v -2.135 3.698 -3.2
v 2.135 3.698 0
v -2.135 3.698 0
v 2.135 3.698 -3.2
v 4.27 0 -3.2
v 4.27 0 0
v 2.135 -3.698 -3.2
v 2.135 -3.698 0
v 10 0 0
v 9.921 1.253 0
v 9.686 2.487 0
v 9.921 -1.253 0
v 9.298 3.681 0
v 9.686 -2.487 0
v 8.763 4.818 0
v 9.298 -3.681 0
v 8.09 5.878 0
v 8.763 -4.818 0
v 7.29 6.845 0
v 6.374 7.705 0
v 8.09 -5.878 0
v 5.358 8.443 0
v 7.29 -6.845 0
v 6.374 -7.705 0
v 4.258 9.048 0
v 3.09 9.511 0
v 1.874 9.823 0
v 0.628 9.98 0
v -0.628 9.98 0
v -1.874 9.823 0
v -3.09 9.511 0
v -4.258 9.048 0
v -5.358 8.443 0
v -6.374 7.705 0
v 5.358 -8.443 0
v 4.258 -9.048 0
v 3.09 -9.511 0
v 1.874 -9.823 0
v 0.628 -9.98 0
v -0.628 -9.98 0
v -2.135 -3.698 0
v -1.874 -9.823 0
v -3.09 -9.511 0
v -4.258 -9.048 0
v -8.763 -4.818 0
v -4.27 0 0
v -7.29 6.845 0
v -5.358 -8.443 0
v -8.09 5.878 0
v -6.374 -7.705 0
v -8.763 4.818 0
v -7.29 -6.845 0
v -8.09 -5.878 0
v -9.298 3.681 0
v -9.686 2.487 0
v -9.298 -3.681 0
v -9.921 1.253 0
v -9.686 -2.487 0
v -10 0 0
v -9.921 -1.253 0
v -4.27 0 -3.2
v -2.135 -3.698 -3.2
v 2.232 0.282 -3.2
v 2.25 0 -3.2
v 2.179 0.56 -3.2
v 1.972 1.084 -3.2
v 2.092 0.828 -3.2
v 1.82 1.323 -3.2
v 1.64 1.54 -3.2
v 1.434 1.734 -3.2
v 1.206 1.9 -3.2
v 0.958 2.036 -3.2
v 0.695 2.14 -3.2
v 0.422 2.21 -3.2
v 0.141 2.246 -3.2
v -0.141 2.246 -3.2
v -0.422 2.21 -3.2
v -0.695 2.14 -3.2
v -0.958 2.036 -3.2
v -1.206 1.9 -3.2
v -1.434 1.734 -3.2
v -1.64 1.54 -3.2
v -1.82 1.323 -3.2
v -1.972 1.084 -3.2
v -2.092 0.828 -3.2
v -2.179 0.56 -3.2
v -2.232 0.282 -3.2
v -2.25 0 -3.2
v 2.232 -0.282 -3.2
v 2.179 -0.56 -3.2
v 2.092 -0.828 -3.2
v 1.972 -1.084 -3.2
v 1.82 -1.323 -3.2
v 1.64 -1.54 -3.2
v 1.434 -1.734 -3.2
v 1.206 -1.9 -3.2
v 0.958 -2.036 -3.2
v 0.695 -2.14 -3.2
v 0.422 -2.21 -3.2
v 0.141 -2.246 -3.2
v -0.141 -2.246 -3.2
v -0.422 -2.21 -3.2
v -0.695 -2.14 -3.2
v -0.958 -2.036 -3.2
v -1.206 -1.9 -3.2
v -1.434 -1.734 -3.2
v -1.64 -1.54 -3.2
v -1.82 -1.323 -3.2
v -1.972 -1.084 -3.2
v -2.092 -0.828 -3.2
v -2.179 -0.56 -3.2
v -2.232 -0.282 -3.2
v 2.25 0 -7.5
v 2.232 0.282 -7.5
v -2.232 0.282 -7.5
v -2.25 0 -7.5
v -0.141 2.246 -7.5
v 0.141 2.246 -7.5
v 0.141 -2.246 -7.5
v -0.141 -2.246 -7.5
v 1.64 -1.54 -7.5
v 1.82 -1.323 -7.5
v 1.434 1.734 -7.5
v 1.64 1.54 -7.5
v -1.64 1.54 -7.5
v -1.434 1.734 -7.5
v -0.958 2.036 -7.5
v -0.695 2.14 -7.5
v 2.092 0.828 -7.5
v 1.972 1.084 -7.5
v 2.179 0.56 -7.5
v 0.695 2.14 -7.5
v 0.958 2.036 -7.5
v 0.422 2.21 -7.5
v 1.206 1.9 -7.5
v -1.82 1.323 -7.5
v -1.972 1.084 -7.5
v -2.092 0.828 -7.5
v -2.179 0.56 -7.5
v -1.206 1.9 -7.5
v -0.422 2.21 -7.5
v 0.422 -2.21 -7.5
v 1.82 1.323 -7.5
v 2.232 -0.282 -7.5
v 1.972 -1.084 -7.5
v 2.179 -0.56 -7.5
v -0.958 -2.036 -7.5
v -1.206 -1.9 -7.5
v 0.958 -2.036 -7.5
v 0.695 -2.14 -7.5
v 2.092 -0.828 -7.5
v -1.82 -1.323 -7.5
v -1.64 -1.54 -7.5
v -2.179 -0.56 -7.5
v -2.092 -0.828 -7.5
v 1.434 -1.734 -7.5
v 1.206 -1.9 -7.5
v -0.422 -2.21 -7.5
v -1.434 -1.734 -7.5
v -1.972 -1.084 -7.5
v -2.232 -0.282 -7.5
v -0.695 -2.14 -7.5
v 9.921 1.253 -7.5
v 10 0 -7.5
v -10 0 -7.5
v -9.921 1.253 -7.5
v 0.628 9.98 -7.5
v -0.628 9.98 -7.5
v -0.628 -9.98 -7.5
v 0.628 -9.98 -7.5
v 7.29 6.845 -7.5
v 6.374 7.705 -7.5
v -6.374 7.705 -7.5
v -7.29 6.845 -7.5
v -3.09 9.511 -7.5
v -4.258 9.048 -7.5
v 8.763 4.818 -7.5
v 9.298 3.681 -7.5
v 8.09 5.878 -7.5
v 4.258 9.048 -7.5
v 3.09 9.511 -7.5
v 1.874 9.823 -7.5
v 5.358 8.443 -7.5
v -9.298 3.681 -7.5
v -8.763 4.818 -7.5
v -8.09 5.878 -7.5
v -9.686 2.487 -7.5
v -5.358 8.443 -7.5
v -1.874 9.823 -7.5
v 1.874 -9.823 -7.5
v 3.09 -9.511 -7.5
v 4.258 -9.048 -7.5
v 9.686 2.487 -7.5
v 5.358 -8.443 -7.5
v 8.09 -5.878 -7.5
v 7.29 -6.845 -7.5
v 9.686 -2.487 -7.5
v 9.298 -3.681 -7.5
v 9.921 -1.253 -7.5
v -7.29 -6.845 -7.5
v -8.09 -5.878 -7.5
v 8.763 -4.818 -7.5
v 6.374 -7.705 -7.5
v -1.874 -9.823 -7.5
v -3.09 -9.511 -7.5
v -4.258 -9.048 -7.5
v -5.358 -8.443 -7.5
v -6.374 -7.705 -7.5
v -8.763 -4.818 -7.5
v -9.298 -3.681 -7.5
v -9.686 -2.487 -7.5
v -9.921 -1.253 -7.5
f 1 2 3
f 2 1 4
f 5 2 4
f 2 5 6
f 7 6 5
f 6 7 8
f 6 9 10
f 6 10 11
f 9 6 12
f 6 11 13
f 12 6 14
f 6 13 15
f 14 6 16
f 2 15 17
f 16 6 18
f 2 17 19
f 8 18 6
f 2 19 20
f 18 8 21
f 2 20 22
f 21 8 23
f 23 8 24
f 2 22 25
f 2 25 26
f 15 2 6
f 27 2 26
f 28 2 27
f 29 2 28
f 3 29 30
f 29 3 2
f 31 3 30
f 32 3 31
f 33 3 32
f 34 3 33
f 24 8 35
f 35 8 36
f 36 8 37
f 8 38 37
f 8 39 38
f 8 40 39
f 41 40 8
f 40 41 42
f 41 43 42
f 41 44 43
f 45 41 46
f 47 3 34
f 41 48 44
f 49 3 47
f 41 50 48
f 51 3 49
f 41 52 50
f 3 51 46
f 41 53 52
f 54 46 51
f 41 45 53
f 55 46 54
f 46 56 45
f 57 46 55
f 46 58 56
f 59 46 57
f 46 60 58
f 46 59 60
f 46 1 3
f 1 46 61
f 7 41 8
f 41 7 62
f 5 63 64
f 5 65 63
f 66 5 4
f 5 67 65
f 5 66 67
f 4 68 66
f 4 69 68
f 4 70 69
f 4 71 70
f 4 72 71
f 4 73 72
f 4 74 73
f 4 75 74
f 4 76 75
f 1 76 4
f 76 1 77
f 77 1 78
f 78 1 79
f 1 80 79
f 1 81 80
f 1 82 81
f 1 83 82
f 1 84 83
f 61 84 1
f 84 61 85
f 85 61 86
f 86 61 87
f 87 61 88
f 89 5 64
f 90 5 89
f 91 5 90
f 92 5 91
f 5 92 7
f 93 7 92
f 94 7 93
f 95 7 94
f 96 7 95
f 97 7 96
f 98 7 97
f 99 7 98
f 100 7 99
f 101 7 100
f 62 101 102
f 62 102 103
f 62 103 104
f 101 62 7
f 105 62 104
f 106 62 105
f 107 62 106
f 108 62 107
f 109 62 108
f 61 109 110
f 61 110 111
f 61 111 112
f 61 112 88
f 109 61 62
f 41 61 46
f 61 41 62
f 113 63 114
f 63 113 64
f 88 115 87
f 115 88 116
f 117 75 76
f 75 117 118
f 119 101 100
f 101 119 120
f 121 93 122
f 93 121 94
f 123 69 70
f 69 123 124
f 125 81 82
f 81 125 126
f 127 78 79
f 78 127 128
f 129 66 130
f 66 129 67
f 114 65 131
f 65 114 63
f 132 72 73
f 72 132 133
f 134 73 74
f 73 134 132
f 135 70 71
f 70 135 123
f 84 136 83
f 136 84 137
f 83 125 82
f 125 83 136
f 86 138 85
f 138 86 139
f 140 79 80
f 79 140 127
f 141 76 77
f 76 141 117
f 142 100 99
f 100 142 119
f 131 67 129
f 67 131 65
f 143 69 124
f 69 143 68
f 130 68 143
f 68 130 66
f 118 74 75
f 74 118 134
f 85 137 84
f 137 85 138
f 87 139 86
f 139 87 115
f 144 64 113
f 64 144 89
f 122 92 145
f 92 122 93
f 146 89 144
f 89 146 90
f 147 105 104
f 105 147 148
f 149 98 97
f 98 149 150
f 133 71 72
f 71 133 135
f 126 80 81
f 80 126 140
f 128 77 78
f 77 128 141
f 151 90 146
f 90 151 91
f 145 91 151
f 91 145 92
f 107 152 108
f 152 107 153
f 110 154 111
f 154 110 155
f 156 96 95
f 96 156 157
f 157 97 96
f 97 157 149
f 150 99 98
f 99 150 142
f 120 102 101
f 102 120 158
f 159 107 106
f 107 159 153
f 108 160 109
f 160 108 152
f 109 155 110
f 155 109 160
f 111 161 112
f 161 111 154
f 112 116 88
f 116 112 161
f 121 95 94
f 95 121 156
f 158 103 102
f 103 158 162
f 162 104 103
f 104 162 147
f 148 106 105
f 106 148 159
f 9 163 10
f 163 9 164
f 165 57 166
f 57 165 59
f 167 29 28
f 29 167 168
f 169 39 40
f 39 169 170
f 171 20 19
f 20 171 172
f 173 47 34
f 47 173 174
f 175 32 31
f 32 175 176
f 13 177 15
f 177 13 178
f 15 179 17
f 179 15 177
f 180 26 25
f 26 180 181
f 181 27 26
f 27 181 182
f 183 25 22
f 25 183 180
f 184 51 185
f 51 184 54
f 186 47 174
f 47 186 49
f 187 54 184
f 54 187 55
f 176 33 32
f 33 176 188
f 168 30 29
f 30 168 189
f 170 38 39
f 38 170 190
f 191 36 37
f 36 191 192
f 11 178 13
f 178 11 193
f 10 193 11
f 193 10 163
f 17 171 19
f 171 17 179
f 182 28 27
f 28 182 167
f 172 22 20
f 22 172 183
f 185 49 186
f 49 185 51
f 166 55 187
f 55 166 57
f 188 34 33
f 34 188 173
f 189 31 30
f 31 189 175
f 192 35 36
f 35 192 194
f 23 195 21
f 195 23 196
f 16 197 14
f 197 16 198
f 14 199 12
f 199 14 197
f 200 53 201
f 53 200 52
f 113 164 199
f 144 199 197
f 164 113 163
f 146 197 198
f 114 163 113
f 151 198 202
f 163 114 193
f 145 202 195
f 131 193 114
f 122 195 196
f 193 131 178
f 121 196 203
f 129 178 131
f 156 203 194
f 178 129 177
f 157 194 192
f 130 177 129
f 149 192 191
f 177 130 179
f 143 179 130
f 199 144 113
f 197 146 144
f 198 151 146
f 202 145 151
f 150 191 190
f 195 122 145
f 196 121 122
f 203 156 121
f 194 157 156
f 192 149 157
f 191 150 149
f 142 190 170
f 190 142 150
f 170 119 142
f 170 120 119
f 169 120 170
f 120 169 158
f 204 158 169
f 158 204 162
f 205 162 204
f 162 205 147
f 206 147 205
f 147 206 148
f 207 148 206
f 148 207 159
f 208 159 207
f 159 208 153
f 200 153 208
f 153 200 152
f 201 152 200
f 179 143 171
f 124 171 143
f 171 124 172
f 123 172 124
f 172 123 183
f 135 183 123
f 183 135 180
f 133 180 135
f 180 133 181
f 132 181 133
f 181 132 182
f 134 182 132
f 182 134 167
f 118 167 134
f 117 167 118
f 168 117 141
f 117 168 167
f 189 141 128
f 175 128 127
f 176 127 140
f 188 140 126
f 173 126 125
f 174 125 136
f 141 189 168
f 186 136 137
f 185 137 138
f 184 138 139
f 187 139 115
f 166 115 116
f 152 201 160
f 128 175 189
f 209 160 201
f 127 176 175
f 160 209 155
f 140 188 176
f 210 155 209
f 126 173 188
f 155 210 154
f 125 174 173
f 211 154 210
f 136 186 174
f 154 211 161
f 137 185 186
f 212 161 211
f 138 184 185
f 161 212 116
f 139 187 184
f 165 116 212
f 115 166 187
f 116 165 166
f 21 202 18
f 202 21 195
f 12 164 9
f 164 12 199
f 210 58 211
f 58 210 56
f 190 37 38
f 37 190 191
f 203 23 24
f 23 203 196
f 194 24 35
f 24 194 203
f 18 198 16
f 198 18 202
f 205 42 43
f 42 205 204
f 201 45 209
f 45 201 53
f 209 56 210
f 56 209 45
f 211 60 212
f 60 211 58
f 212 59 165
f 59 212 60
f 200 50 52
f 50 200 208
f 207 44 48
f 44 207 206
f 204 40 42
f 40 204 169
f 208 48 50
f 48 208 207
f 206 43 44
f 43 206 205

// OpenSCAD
$fn = 50;

difference() {
	union() {
		translate(v = [0, 0, -7.5]) {
			cylinder(h = 7.5, r = 10.0);
		}
	}
	union() {
		translate(v = [0, 0, 0]) {
			rotate(a = [0, 0, 0]) {
				difference() {
					union() {
						translate(v = [0, 0, -3.2]) {
							linear_extrude(height = 3.2) {
								polygon(points = [[4.2698, 0.0], [2.1349000000000005, 3.697755269078796], [-2.134899999999999, 3.6977552690787965], [-4.2698, 5.228996902999369e-16], [-2.134900000000002, -3.6977552690787956], [2.1348999999999974, -3.697755269078798]]);
							}
						}
					}
					union();
				}
			}
		}
		#translate(v = [0, 0, -100.0]) {
			cylinder(h = 200, r = 2.25);
		}
	}
}
